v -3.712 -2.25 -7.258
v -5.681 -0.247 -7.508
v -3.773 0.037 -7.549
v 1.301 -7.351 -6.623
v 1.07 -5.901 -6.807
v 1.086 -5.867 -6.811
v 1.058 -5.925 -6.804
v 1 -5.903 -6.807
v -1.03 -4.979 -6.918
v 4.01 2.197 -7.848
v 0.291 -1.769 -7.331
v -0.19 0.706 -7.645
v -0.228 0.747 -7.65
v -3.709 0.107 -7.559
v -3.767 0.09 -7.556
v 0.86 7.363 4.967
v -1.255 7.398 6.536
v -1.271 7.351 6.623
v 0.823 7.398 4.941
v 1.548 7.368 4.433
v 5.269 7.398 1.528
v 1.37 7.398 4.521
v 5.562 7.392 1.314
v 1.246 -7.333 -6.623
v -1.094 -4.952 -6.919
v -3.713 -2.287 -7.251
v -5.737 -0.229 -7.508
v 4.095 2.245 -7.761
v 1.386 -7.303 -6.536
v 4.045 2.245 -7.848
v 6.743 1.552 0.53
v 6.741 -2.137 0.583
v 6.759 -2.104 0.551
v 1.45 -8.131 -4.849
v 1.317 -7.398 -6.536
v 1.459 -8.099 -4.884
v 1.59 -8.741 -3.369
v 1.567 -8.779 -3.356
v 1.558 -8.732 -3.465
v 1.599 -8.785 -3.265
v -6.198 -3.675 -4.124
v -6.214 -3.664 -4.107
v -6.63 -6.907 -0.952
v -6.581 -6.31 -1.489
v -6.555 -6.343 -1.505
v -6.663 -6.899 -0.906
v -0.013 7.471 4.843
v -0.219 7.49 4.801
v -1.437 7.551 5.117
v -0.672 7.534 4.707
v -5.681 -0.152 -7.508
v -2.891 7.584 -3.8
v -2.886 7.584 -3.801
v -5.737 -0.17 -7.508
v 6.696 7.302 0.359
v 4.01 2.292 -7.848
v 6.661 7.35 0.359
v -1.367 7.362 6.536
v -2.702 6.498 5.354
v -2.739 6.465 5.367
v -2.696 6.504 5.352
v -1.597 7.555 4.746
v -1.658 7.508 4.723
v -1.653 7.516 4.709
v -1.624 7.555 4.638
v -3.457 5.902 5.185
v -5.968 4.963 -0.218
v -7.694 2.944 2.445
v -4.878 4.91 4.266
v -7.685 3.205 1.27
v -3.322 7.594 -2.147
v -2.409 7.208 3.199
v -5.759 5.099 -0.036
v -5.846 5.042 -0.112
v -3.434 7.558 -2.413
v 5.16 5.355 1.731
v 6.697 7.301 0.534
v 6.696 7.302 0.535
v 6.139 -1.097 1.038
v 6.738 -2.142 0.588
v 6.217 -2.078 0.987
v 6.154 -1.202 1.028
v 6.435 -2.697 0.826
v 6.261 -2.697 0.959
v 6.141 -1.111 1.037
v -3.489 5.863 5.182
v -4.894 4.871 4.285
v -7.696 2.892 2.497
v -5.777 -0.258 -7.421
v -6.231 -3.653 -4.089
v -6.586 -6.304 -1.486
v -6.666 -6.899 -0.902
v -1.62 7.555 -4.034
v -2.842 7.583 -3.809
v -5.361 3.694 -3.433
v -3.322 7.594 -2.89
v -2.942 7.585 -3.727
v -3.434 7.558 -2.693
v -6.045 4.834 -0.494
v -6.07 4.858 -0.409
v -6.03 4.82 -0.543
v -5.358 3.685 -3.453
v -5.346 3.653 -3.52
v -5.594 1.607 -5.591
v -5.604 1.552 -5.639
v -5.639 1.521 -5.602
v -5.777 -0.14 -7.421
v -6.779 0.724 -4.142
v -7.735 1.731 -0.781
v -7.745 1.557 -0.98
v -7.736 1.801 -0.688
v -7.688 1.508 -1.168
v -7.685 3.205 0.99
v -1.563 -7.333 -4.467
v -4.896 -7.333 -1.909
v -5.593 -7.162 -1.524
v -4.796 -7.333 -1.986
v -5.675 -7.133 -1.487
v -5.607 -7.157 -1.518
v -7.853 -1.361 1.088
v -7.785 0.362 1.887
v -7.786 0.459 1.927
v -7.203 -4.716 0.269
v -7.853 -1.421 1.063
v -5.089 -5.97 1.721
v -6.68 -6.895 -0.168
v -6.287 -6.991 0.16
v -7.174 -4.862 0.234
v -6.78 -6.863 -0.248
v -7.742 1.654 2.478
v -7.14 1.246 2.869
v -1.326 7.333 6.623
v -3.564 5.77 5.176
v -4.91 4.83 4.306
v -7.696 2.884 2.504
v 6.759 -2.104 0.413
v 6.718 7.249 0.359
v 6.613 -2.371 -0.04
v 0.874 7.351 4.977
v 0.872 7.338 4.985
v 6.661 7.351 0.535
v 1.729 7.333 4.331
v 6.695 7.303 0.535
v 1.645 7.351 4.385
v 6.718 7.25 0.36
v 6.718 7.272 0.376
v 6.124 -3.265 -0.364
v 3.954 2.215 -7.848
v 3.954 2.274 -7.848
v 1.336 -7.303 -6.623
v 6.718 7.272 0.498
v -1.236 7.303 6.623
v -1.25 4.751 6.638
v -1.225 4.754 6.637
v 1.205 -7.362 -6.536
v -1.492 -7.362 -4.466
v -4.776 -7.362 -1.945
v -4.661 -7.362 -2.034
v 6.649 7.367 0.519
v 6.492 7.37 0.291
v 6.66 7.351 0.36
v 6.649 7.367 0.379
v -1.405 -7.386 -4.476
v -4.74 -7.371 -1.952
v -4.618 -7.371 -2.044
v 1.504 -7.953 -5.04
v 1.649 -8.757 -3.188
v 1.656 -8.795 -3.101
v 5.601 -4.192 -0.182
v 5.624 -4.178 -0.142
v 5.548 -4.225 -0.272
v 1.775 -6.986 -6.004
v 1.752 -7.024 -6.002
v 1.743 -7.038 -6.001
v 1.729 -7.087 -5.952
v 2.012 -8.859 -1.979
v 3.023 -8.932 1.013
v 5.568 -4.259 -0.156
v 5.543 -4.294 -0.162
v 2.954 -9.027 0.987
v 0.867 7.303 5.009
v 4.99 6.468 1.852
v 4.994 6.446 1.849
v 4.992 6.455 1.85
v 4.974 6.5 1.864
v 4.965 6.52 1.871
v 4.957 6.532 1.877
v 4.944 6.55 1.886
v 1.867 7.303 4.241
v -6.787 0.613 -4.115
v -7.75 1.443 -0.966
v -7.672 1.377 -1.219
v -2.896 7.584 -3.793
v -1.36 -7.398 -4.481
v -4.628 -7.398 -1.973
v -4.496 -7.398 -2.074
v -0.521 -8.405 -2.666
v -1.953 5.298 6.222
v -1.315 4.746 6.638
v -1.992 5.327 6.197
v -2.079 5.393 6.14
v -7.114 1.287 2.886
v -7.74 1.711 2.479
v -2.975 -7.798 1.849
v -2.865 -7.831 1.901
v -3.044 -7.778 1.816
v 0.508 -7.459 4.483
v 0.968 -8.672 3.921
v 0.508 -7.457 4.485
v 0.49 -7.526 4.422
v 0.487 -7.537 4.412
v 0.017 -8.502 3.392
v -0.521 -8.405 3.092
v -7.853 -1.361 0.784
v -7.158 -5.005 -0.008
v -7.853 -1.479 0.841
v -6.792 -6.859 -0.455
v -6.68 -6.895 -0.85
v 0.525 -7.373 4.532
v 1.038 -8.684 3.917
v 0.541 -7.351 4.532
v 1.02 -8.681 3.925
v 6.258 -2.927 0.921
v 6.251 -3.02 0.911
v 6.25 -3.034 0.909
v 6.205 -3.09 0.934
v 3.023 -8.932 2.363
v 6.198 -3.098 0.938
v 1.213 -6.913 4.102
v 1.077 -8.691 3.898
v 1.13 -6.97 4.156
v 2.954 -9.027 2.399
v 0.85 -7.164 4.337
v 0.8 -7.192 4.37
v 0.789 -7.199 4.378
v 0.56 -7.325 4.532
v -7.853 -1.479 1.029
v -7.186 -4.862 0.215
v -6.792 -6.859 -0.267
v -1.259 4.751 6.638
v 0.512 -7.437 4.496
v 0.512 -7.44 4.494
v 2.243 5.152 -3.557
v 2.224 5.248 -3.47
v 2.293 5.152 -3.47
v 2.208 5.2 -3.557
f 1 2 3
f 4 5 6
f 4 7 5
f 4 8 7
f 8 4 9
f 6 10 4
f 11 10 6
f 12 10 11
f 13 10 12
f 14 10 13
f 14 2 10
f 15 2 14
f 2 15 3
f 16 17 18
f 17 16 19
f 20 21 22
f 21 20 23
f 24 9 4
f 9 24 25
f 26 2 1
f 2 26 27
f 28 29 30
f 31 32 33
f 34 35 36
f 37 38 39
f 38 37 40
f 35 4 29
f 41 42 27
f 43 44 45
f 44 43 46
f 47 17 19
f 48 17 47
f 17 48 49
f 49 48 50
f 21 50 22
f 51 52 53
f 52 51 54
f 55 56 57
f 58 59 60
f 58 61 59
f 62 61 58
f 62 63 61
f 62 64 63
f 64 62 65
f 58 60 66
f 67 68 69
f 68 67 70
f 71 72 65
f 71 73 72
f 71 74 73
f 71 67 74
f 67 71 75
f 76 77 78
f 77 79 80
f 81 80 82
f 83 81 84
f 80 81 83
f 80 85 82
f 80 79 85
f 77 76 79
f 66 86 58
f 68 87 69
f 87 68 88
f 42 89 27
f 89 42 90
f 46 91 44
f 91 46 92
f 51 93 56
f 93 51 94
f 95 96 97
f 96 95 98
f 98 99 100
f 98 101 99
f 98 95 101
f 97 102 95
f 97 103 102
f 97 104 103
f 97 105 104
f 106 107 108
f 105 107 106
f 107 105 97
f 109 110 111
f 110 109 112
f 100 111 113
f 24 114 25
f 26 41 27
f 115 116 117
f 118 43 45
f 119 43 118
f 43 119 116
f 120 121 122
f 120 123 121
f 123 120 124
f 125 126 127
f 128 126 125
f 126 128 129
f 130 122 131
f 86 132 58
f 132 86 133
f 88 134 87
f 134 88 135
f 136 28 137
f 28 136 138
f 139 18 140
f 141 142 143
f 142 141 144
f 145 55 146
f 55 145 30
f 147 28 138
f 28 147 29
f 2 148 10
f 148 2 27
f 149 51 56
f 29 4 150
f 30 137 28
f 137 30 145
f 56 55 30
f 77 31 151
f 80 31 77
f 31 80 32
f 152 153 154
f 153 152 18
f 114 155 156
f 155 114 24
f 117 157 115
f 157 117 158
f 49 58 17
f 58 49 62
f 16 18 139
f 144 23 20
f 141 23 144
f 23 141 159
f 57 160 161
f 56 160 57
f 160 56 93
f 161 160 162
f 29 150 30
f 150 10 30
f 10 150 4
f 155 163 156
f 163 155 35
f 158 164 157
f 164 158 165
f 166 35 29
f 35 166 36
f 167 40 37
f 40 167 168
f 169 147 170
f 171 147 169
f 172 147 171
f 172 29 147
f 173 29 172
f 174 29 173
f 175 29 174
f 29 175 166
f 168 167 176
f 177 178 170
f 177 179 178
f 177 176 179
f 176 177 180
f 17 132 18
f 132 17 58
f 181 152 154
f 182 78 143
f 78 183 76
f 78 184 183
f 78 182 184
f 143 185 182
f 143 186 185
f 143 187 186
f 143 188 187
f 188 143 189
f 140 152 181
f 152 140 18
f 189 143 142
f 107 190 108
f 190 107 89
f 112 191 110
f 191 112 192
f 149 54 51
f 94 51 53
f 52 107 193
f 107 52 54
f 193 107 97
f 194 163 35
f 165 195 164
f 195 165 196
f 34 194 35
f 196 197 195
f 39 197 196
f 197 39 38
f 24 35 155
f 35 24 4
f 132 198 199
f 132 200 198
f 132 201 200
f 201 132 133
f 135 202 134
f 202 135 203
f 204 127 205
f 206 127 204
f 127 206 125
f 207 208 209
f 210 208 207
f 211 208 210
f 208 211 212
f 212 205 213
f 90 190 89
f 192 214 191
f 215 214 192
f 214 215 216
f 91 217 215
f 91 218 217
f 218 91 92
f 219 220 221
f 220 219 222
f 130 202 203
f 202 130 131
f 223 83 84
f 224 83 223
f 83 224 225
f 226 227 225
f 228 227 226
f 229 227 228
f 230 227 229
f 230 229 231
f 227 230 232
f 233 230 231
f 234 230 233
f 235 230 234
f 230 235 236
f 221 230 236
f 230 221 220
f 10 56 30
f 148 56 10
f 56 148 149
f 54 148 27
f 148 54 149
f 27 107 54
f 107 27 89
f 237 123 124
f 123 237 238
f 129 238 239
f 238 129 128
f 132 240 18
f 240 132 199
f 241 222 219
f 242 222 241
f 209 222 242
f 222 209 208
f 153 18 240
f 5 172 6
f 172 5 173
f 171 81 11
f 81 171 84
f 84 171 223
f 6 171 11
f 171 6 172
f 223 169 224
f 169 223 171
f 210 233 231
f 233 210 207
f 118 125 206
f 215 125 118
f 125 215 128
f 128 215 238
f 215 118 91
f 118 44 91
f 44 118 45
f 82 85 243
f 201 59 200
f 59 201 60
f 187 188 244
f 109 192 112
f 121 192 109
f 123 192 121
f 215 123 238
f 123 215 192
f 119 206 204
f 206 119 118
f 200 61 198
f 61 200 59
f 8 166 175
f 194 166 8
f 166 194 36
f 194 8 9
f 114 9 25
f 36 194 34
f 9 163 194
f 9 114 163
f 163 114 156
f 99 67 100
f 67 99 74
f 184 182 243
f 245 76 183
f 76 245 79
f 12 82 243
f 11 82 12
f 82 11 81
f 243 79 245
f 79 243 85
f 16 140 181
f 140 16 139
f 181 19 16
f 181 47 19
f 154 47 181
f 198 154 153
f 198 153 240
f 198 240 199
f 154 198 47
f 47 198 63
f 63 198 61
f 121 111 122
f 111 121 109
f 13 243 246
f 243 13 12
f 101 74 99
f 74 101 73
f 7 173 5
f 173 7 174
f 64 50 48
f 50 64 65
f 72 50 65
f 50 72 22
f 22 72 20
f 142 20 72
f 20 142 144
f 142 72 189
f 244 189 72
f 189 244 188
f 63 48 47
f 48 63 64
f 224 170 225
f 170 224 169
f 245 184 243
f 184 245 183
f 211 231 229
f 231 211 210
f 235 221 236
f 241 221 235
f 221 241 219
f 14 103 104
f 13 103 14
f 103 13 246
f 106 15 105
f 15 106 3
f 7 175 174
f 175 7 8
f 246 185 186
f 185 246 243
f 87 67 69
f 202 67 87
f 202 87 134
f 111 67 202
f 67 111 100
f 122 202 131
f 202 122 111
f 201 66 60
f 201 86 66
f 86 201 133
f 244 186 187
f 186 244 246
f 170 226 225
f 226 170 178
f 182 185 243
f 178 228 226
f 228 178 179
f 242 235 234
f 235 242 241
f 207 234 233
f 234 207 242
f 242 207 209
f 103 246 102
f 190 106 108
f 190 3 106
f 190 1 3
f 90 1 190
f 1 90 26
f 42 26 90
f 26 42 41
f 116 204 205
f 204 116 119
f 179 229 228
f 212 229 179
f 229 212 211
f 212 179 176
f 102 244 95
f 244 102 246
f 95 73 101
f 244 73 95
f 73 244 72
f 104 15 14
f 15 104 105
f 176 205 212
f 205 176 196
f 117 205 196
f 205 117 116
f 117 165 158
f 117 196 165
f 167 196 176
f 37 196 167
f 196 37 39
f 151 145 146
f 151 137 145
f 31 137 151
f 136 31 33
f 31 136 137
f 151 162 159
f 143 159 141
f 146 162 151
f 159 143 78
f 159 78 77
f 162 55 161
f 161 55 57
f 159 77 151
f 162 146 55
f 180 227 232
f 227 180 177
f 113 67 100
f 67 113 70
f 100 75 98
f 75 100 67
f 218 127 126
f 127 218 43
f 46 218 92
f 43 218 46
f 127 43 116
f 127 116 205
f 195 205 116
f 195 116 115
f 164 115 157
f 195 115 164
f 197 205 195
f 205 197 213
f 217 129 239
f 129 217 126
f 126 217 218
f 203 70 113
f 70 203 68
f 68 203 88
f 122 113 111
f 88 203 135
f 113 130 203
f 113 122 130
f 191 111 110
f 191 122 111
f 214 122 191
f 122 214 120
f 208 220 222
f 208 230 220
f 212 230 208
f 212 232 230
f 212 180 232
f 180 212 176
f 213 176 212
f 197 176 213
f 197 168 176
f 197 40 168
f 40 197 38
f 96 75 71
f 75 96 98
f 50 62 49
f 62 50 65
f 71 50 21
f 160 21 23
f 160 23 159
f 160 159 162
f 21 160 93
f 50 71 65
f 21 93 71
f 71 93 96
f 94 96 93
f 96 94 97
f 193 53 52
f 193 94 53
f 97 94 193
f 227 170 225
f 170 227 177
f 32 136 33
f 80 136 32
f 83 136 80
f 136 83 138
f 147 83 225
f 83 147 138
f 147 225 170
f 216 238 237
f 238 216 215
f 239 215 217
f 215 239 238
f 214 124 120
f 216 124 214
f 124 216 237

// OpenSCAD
// Auto-generated OpenSCAD file

    inner_points = 10*[[-0.33527340439148867, 0.7498997662519438, 0.4513456021203321], [-0.15430438504244254, -0.1676220498145088, -0.9748300137498693], [0.11133893181382774, 0.024295540843831454, 0.9748300137498693], [0.2923079511628739, -0.8932262752226212, -0.4513456021203321], [-0.7603709966932597, 0.3145903298228517, -0.3422523638391476], [-0.055234763477199314, -0.8310337132952008, 0.4842537494941892], [0.21927979692174981, 0.5152429571411032, -0.3470320834716172], [0.6658921331270662, -0.21036126826700907, 0.17645232815792009], [-0.7772187463952425, -0.14199914567561245, 0.54726559786484], [-0.6711068070064338, -0.679991889873274, -0.28897842364432175], [0.661801140766184, 0.7271720747422719, 0.5243237045707335]];

    outer_points = 10*[[-0.6646630702233576, -0.7303166978819896, -0.04476341064086725], [-0.12860392172681917, 0.7303166978819896, 0.6536373544767964], [0.12860392172681917, -0.7303166978819896, -0.6536373544767964], [0.6646630702233576, 0.7303166978819896, 0.04476341064086725], [-0.8529840806486279, 0.22448007402066417, 0.18523294019252518], [0.39946967687864576, 0.22448007402066417, -0.7760908846435595], [-0.12424046378929937, -0.2696576228647949, 0.6593222539336372], [0.6690265281608774, -0.2696576228647949, 0.05044831009770817], [-0.5696102969148841, -0.01991608581139187, -0.7421126349582734], [-0.2552897790787969, 0.8365323986755415, -0.33260243302517273], [0.20051337790222834, -1.1275989896931966, 0.26123739691040415]];

    // Convex hull for inner set (I)
    module inner_hull() {
        hull() {
            for (p = inner_points) {
                translate(p) sphere(r=0.1);
            }
        }
    }

    // Convex hull for outer set (O) minus inner hull (O \ I)
    module outer_minus_inner() {
        difference() {
            hull() {
                for (p = outer_points) {
                    translate(p) sphere(r=0.1);
                }
            }
            inner_hull(); // Subtract inner hull
        }
    }

    // Convex hull for outer set (O) minus all translated inner hulls
    module outer_minus_AllTranslationInner() {
        difference() {
            hull() {
                for (p = outer_points) {
                    translate(p) sphere(r=0.1);
                }
            }
            hull() {
                translate([0,0,50]) inner_hull();
                translate([0,0,-50]) inner_hull();
            }; // Subtract translated inner hulls
        }
    }

    // Difference between outer_minus_inner and outer_minus_AllTranslationInner
    module outer_minus_inner_diff() {
        difference() {
            // Outer minus inner
            difference() {
                hull() {
                    for (p = outer_points) {
                        translate(p) sphere(r=0.1);
                    }
                }
                inner_hull();
            }

            // Subtract Outer minus AllTranslationInner
            difference() {
                hull() {
                    for (p = outer_points) {
                        translate(p) sphere(r=0.1);
                    }
                }
                hull() {
                    translate([0,0,50]) inner_hull();
                    translate([0,0,-50]) inner_hull();
                };
            }
        }
    }

    // Rendering all with colors applied
    color([1, 1, 0, 1]) outer_minus_inner_diff(); // Opaque yellow
    
